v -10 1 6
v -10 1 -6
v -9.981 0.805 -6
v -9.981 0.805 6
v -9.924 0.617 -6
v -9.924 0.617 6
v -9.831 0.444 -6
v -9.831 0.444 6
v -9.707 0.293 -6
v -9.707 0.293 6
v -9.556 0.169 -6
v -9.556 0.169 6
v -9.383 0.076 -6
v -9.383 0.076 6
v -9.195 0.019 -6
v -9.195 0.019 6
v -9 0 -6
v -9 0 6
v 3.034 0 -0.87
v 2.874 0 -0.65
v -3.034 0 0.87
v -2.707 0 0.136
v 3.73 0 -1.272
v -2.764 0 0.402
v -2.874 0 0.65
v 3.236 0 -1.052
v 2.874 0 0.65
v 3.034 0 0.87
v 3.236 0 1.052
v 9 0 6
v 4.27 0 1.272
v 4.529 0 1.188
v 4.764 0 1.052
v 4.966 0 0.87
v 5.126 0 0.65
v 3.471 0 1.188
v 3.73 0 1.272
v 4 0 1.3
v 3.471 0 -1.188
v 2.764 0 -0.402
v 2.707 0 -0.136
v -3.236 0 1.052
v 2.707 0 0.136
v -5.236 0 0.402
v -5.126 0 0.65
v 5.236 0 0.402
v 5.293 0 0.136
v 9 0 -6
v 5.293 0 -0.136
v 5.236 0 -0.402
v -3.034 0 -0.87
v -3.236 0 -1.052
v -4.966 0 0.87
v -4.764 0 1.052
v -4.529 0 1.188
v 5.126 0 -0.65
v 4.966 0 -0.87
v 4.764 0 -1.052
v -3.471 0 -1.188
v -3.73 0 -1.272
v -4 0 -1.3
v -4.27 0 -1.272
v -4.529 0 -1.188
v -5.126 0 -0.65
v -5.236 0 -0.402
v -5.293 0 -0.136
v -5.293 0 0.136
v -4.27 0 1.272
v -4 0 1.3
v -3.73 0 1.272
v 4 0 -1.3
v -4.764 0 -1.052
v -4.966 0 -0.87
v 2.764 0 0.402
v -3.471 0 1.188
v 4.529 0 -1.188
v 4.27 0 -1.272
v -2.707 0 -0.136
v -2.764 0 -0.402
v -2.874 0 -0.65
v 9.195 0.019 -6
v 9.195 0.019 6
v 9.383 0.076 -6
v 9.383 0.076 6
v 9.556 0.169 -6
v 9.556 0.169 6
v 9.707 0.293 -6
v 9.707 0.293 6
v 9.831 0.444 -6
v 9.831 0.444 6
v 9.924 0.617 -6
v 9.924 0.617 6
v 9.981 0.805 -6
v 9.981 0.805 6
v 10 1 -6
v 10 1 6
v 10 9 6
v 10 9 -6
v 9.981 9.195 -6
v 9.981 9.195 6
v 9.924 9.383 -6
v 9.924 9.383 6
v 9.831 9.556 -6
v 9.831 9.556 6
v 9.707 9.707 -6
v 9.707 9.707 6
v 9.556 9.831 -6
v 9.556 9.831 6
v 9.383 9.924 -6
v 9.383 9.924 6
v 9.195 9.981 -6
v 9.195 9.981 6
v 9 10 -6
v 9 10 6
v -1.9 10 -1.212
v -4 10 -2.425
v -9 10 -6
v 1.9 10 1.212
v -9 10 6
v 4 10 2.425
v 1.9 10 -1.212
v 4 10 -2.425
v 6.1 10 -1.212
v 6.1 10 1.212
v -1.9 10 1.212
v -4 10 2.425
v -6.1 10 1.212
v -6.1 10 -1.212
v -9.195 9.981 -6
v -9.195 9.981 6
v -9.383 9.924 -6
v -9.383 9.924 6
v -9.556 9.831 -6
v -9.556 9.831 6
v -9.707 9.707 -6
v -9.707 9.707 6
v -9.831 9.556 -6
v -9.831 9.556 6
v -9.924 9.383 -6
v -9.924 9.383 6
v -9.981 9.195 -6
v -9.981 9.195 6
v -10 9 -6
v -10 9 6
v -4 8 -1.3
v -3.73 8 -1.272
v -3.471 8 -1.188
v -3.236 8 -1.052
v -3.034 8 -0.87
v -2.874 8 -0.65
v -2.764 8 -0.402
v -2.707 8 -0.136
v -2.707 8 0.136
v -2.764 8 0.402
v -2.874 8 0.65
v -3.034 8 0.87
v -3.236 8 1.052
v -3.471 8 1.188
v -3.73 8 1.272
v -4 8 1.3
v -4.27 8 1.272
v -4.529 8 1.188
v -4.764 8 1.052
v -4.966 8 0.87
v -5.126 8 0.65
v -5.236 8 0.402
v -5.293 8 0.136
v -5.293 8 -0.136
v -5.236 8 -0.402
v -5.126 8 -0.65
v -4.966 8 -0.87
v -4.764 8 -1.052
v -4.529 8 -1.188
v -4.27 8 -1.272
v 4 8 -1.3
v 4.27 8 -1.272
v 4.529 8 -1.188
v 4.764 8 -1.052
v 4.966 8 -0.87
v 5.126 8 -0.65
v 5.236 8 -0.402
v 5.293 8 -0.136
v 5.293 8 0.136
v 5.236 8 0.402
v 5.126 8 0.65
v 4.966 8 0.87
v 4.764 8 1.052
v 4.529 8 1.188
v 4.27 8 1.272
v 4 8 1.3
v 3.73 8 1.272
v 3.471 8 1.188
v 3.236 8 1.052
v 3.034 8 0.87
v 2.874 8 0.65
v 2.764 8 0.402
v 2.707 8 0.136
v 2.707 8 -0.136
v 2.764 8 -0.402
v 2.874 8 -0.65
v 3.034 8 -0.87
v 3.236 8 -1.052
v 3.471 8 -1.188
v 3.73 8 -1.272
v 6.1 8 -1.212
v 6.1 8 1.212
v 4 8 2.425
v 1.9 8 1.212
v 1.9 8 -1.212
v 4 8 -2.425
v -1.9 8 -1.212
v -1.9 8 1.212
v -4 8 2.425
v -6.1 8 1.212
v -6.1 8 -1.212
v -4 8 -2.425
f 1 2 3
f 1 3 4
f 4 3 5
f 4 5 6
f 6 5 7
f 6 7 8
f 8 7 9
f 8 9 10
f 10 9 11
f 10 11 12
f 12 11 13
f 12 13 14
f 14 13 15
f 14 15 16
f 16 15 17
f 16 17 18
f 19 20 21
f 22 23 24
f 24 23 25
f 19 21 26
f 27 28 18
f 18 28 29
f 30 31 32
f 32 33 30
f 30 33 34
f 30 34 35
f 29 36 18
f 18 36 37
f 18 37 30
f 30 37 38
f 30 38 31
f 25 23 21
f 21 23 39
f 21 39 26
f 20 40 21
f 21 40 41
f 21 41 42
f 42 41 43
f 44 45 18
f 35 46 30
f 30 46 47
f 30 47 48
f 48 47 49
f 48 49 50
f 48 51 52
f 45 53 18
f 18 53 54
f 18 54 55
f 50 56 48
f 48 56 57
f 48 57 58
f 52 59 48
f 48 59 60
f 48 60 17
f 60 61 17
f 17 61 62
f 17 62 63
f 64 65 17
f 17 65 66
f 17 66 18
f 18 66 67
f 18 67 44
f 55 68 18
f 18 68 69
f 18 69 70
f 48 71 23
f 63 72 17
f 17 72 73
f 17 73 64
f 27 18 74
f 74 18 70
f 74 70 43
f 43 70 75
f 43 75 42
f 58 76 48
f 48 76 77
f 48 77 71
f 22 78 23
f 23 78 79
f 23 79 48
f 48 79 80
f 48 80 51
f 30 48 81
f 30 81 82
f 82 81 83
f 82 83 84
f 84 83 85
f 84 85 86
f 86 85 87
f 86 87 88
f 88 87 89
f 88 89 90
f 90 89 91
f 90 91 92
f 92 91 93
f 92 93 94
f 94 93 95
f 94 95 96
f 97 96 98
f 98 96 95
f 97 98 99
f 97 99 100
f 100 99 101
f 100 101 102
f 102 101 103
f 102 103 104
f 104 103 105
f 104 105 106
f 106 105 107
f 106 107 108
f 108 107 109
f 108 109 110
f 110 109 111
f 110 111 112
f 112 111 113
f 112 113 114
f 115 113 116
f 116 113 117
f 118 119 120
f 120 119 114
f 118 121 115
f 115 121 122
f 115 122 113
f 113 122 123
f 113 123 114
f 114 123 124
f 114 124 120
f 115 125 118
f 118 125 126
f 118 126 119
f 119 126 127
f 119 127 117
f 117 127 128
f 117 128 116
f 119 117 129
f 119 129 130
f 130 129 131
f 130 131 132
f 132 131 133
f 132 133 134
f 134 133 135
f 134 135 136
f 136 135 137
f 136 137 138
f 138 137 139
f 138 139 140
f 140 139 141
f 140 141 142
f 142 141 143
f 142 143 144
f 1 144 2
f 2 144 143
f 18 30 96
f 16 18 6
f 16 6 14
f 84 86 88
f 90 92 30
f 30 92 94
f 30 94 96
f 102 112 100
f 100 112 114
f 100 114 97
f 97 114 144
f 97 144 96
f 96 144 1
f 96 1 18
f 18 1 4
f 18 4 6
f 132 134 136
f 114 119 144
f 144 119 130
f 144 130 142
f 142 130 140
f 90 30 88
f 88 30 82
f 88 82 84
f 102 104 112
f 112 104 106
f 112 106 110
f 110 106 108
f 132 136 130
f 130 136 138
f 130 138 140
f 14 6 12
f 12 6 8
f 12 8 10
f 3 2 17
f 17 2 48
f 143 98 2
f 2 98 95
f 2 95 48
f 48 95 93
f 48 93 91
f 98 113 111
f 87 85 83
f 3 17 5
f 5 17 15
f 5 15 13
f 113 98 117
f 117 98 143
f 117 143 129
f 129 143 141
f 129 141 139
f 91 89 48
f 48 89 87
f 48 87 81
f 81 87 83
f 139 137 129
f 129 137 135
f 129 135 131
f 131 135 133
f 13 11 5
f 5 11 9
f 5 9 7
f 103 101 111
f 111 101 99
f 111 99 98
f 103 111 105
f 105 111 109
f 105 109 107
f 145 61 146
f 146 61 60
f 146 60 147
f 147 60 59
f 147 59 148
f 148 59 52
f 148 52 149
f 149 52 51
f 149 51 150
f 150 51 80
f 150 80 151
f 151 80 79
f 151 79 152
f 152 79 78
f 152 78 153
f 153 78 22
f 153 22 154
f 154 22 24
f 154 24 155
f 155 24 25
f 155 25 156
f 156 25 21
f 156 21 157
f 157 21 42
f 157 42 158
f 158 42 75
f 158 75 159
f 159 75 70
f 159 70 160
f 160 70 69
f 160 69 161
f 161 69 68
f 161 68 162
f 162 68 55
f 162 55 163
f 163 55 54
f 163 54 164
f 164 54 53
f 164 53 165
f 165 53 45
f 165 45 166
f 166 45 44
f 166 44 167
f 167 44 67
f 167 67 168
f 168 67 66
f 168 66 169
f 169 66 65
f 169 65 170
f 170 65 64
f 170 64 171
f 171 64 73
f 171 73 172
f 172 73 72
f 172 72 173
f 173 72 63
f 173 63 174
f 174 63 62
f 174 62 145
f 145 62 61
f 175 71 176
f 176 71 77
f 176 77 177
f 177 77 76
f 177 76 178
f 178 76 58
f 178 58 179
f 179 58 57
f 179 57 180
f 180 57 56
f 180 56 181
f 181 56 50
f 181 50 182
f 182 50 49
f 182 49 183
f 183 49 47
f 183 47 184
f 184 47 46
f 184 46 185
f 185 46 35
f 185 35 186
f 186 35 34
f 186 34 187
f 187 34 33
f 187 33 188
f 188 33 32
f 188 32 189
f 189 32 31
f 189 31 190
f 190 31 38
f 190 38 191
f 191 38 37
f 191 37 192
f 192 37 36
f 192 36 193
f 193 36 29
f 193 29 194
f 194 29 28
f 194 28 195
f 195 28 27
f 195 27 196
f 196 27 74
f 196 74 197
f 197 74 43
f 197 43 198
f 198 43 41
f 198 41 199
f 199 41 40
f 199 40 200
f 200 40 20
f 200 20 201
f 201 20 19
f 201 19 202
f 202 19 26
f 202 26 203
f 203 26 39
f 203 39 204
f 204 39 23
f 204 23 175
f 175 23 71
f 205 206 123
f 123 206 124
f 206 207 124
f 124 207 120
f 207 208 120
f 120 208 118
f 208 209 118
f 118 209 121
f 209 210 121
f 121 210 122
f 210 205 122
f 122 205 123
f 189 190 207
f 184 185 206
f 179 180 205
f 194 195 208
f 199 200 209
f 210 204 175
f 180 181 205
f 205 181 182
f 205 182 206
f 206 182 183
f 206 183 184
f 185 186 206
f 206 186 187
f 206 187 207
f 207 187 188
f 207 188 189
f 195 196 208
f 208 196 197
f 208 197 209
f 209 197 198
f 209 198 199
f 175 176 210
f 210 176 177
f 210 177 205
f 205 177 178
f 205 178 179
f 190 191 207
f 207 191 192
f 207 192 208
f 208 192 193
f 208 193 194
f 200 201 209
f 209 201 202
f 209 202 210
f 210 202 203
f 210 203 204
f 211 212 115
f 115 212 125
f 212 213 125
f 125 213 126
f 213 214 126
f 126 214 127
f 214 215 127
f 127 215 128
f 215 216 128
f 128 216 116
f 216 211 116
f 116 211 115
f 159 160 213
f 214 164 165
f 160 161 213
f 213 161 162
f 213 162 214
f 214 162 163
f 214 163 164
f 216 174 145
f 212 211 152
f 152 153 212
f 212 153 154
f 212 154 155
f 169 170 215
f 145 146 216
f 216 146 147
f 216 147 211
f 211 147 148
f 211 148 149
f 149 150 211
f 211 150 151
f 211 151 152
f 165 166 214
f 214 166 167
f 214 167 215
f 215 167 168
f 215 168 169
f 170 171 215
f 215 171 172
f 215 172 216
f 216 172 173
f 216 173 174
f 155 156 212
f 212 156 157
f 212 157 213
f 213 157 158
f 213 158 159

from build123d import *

# Parameters (mm, degrees)
BOSS_EXTRUDE1_DEPTH = 6
SKETCH2_R           = 1.3
CUT_EXTRUDE1_DEPTH  = 10
CUT_EXTRUDE2_DEPTH  = 2


with BuildPart() as part:
    # Sketch1 → Boss-Extrude1 (new, symmetric)
    with BuildSketch(Plane.XY):
        with BuildLine():
            Line((-9, 0), (9, 0))
            ThreePointArc((9, 0), (9.707106781, 0.292893219), (10, 1))
            Line((10, 1), (10, 9))
            ThreePointArc((10, 9), (9.707106781, 9.707106781), (9, 10))
            Line((9, 10), (-9, 10))
            ThreePointArc((-9, 10), (-9.707106781, 9.707106781), (-10, 9))
            Line((-10, 9), (-10, 1))
            ThreePointArc((-10, 1), (-9.707106781, 0.292893219), (-9, 0))
        make_face()
    extrude(amount=BOSS_EXTRUDE1_DEPTH, both=True)

    # Sketch2 → Cut-Extrude1 (cut)
    with BuildSketch(Plane(origin=(0, 0, 0), x_dir=(1, 0, 0), z_dir=(0, 1, 0))):
        with Locations(Location((4, 0, 0), (0, 0, 270))):
            Circle(SKETCH2_R)
        with Locations(Location((-4, 0, 0), (0, 0, 270))):
            Circle(SKETCH2_R)
    extrude(amount=CUT_EXTRUDE1_DEPTH, mode=Mode.SUBTRACT)

    # Sketch3 → Cut-Extrude2 (cut)
    with BuildSketch(Plane(origin=(0, 10, 0), x_dir=(1, 0, 0), z_dir=(0, 1, 0))):
        Polygon((6.1, -1.212435565), (4, -2.424871131), (1.9, -1.212435565), (1.9, 1.212435565), (4, 2.424871131), (6.1, 1.212435565), align=None)
        Polygon((-1.9, -1.212435565), (-4, -2.424871131), (-6.1, -1.212435565), (-6.1, 1.212435565), (-4, 2.424871131), (-1.9, 1.212435565), align=None)
    extrude(amount=-CUT_EXTRUDE2_DEPTH, mode=Mode.SUBTRACT)


solid = part.part
